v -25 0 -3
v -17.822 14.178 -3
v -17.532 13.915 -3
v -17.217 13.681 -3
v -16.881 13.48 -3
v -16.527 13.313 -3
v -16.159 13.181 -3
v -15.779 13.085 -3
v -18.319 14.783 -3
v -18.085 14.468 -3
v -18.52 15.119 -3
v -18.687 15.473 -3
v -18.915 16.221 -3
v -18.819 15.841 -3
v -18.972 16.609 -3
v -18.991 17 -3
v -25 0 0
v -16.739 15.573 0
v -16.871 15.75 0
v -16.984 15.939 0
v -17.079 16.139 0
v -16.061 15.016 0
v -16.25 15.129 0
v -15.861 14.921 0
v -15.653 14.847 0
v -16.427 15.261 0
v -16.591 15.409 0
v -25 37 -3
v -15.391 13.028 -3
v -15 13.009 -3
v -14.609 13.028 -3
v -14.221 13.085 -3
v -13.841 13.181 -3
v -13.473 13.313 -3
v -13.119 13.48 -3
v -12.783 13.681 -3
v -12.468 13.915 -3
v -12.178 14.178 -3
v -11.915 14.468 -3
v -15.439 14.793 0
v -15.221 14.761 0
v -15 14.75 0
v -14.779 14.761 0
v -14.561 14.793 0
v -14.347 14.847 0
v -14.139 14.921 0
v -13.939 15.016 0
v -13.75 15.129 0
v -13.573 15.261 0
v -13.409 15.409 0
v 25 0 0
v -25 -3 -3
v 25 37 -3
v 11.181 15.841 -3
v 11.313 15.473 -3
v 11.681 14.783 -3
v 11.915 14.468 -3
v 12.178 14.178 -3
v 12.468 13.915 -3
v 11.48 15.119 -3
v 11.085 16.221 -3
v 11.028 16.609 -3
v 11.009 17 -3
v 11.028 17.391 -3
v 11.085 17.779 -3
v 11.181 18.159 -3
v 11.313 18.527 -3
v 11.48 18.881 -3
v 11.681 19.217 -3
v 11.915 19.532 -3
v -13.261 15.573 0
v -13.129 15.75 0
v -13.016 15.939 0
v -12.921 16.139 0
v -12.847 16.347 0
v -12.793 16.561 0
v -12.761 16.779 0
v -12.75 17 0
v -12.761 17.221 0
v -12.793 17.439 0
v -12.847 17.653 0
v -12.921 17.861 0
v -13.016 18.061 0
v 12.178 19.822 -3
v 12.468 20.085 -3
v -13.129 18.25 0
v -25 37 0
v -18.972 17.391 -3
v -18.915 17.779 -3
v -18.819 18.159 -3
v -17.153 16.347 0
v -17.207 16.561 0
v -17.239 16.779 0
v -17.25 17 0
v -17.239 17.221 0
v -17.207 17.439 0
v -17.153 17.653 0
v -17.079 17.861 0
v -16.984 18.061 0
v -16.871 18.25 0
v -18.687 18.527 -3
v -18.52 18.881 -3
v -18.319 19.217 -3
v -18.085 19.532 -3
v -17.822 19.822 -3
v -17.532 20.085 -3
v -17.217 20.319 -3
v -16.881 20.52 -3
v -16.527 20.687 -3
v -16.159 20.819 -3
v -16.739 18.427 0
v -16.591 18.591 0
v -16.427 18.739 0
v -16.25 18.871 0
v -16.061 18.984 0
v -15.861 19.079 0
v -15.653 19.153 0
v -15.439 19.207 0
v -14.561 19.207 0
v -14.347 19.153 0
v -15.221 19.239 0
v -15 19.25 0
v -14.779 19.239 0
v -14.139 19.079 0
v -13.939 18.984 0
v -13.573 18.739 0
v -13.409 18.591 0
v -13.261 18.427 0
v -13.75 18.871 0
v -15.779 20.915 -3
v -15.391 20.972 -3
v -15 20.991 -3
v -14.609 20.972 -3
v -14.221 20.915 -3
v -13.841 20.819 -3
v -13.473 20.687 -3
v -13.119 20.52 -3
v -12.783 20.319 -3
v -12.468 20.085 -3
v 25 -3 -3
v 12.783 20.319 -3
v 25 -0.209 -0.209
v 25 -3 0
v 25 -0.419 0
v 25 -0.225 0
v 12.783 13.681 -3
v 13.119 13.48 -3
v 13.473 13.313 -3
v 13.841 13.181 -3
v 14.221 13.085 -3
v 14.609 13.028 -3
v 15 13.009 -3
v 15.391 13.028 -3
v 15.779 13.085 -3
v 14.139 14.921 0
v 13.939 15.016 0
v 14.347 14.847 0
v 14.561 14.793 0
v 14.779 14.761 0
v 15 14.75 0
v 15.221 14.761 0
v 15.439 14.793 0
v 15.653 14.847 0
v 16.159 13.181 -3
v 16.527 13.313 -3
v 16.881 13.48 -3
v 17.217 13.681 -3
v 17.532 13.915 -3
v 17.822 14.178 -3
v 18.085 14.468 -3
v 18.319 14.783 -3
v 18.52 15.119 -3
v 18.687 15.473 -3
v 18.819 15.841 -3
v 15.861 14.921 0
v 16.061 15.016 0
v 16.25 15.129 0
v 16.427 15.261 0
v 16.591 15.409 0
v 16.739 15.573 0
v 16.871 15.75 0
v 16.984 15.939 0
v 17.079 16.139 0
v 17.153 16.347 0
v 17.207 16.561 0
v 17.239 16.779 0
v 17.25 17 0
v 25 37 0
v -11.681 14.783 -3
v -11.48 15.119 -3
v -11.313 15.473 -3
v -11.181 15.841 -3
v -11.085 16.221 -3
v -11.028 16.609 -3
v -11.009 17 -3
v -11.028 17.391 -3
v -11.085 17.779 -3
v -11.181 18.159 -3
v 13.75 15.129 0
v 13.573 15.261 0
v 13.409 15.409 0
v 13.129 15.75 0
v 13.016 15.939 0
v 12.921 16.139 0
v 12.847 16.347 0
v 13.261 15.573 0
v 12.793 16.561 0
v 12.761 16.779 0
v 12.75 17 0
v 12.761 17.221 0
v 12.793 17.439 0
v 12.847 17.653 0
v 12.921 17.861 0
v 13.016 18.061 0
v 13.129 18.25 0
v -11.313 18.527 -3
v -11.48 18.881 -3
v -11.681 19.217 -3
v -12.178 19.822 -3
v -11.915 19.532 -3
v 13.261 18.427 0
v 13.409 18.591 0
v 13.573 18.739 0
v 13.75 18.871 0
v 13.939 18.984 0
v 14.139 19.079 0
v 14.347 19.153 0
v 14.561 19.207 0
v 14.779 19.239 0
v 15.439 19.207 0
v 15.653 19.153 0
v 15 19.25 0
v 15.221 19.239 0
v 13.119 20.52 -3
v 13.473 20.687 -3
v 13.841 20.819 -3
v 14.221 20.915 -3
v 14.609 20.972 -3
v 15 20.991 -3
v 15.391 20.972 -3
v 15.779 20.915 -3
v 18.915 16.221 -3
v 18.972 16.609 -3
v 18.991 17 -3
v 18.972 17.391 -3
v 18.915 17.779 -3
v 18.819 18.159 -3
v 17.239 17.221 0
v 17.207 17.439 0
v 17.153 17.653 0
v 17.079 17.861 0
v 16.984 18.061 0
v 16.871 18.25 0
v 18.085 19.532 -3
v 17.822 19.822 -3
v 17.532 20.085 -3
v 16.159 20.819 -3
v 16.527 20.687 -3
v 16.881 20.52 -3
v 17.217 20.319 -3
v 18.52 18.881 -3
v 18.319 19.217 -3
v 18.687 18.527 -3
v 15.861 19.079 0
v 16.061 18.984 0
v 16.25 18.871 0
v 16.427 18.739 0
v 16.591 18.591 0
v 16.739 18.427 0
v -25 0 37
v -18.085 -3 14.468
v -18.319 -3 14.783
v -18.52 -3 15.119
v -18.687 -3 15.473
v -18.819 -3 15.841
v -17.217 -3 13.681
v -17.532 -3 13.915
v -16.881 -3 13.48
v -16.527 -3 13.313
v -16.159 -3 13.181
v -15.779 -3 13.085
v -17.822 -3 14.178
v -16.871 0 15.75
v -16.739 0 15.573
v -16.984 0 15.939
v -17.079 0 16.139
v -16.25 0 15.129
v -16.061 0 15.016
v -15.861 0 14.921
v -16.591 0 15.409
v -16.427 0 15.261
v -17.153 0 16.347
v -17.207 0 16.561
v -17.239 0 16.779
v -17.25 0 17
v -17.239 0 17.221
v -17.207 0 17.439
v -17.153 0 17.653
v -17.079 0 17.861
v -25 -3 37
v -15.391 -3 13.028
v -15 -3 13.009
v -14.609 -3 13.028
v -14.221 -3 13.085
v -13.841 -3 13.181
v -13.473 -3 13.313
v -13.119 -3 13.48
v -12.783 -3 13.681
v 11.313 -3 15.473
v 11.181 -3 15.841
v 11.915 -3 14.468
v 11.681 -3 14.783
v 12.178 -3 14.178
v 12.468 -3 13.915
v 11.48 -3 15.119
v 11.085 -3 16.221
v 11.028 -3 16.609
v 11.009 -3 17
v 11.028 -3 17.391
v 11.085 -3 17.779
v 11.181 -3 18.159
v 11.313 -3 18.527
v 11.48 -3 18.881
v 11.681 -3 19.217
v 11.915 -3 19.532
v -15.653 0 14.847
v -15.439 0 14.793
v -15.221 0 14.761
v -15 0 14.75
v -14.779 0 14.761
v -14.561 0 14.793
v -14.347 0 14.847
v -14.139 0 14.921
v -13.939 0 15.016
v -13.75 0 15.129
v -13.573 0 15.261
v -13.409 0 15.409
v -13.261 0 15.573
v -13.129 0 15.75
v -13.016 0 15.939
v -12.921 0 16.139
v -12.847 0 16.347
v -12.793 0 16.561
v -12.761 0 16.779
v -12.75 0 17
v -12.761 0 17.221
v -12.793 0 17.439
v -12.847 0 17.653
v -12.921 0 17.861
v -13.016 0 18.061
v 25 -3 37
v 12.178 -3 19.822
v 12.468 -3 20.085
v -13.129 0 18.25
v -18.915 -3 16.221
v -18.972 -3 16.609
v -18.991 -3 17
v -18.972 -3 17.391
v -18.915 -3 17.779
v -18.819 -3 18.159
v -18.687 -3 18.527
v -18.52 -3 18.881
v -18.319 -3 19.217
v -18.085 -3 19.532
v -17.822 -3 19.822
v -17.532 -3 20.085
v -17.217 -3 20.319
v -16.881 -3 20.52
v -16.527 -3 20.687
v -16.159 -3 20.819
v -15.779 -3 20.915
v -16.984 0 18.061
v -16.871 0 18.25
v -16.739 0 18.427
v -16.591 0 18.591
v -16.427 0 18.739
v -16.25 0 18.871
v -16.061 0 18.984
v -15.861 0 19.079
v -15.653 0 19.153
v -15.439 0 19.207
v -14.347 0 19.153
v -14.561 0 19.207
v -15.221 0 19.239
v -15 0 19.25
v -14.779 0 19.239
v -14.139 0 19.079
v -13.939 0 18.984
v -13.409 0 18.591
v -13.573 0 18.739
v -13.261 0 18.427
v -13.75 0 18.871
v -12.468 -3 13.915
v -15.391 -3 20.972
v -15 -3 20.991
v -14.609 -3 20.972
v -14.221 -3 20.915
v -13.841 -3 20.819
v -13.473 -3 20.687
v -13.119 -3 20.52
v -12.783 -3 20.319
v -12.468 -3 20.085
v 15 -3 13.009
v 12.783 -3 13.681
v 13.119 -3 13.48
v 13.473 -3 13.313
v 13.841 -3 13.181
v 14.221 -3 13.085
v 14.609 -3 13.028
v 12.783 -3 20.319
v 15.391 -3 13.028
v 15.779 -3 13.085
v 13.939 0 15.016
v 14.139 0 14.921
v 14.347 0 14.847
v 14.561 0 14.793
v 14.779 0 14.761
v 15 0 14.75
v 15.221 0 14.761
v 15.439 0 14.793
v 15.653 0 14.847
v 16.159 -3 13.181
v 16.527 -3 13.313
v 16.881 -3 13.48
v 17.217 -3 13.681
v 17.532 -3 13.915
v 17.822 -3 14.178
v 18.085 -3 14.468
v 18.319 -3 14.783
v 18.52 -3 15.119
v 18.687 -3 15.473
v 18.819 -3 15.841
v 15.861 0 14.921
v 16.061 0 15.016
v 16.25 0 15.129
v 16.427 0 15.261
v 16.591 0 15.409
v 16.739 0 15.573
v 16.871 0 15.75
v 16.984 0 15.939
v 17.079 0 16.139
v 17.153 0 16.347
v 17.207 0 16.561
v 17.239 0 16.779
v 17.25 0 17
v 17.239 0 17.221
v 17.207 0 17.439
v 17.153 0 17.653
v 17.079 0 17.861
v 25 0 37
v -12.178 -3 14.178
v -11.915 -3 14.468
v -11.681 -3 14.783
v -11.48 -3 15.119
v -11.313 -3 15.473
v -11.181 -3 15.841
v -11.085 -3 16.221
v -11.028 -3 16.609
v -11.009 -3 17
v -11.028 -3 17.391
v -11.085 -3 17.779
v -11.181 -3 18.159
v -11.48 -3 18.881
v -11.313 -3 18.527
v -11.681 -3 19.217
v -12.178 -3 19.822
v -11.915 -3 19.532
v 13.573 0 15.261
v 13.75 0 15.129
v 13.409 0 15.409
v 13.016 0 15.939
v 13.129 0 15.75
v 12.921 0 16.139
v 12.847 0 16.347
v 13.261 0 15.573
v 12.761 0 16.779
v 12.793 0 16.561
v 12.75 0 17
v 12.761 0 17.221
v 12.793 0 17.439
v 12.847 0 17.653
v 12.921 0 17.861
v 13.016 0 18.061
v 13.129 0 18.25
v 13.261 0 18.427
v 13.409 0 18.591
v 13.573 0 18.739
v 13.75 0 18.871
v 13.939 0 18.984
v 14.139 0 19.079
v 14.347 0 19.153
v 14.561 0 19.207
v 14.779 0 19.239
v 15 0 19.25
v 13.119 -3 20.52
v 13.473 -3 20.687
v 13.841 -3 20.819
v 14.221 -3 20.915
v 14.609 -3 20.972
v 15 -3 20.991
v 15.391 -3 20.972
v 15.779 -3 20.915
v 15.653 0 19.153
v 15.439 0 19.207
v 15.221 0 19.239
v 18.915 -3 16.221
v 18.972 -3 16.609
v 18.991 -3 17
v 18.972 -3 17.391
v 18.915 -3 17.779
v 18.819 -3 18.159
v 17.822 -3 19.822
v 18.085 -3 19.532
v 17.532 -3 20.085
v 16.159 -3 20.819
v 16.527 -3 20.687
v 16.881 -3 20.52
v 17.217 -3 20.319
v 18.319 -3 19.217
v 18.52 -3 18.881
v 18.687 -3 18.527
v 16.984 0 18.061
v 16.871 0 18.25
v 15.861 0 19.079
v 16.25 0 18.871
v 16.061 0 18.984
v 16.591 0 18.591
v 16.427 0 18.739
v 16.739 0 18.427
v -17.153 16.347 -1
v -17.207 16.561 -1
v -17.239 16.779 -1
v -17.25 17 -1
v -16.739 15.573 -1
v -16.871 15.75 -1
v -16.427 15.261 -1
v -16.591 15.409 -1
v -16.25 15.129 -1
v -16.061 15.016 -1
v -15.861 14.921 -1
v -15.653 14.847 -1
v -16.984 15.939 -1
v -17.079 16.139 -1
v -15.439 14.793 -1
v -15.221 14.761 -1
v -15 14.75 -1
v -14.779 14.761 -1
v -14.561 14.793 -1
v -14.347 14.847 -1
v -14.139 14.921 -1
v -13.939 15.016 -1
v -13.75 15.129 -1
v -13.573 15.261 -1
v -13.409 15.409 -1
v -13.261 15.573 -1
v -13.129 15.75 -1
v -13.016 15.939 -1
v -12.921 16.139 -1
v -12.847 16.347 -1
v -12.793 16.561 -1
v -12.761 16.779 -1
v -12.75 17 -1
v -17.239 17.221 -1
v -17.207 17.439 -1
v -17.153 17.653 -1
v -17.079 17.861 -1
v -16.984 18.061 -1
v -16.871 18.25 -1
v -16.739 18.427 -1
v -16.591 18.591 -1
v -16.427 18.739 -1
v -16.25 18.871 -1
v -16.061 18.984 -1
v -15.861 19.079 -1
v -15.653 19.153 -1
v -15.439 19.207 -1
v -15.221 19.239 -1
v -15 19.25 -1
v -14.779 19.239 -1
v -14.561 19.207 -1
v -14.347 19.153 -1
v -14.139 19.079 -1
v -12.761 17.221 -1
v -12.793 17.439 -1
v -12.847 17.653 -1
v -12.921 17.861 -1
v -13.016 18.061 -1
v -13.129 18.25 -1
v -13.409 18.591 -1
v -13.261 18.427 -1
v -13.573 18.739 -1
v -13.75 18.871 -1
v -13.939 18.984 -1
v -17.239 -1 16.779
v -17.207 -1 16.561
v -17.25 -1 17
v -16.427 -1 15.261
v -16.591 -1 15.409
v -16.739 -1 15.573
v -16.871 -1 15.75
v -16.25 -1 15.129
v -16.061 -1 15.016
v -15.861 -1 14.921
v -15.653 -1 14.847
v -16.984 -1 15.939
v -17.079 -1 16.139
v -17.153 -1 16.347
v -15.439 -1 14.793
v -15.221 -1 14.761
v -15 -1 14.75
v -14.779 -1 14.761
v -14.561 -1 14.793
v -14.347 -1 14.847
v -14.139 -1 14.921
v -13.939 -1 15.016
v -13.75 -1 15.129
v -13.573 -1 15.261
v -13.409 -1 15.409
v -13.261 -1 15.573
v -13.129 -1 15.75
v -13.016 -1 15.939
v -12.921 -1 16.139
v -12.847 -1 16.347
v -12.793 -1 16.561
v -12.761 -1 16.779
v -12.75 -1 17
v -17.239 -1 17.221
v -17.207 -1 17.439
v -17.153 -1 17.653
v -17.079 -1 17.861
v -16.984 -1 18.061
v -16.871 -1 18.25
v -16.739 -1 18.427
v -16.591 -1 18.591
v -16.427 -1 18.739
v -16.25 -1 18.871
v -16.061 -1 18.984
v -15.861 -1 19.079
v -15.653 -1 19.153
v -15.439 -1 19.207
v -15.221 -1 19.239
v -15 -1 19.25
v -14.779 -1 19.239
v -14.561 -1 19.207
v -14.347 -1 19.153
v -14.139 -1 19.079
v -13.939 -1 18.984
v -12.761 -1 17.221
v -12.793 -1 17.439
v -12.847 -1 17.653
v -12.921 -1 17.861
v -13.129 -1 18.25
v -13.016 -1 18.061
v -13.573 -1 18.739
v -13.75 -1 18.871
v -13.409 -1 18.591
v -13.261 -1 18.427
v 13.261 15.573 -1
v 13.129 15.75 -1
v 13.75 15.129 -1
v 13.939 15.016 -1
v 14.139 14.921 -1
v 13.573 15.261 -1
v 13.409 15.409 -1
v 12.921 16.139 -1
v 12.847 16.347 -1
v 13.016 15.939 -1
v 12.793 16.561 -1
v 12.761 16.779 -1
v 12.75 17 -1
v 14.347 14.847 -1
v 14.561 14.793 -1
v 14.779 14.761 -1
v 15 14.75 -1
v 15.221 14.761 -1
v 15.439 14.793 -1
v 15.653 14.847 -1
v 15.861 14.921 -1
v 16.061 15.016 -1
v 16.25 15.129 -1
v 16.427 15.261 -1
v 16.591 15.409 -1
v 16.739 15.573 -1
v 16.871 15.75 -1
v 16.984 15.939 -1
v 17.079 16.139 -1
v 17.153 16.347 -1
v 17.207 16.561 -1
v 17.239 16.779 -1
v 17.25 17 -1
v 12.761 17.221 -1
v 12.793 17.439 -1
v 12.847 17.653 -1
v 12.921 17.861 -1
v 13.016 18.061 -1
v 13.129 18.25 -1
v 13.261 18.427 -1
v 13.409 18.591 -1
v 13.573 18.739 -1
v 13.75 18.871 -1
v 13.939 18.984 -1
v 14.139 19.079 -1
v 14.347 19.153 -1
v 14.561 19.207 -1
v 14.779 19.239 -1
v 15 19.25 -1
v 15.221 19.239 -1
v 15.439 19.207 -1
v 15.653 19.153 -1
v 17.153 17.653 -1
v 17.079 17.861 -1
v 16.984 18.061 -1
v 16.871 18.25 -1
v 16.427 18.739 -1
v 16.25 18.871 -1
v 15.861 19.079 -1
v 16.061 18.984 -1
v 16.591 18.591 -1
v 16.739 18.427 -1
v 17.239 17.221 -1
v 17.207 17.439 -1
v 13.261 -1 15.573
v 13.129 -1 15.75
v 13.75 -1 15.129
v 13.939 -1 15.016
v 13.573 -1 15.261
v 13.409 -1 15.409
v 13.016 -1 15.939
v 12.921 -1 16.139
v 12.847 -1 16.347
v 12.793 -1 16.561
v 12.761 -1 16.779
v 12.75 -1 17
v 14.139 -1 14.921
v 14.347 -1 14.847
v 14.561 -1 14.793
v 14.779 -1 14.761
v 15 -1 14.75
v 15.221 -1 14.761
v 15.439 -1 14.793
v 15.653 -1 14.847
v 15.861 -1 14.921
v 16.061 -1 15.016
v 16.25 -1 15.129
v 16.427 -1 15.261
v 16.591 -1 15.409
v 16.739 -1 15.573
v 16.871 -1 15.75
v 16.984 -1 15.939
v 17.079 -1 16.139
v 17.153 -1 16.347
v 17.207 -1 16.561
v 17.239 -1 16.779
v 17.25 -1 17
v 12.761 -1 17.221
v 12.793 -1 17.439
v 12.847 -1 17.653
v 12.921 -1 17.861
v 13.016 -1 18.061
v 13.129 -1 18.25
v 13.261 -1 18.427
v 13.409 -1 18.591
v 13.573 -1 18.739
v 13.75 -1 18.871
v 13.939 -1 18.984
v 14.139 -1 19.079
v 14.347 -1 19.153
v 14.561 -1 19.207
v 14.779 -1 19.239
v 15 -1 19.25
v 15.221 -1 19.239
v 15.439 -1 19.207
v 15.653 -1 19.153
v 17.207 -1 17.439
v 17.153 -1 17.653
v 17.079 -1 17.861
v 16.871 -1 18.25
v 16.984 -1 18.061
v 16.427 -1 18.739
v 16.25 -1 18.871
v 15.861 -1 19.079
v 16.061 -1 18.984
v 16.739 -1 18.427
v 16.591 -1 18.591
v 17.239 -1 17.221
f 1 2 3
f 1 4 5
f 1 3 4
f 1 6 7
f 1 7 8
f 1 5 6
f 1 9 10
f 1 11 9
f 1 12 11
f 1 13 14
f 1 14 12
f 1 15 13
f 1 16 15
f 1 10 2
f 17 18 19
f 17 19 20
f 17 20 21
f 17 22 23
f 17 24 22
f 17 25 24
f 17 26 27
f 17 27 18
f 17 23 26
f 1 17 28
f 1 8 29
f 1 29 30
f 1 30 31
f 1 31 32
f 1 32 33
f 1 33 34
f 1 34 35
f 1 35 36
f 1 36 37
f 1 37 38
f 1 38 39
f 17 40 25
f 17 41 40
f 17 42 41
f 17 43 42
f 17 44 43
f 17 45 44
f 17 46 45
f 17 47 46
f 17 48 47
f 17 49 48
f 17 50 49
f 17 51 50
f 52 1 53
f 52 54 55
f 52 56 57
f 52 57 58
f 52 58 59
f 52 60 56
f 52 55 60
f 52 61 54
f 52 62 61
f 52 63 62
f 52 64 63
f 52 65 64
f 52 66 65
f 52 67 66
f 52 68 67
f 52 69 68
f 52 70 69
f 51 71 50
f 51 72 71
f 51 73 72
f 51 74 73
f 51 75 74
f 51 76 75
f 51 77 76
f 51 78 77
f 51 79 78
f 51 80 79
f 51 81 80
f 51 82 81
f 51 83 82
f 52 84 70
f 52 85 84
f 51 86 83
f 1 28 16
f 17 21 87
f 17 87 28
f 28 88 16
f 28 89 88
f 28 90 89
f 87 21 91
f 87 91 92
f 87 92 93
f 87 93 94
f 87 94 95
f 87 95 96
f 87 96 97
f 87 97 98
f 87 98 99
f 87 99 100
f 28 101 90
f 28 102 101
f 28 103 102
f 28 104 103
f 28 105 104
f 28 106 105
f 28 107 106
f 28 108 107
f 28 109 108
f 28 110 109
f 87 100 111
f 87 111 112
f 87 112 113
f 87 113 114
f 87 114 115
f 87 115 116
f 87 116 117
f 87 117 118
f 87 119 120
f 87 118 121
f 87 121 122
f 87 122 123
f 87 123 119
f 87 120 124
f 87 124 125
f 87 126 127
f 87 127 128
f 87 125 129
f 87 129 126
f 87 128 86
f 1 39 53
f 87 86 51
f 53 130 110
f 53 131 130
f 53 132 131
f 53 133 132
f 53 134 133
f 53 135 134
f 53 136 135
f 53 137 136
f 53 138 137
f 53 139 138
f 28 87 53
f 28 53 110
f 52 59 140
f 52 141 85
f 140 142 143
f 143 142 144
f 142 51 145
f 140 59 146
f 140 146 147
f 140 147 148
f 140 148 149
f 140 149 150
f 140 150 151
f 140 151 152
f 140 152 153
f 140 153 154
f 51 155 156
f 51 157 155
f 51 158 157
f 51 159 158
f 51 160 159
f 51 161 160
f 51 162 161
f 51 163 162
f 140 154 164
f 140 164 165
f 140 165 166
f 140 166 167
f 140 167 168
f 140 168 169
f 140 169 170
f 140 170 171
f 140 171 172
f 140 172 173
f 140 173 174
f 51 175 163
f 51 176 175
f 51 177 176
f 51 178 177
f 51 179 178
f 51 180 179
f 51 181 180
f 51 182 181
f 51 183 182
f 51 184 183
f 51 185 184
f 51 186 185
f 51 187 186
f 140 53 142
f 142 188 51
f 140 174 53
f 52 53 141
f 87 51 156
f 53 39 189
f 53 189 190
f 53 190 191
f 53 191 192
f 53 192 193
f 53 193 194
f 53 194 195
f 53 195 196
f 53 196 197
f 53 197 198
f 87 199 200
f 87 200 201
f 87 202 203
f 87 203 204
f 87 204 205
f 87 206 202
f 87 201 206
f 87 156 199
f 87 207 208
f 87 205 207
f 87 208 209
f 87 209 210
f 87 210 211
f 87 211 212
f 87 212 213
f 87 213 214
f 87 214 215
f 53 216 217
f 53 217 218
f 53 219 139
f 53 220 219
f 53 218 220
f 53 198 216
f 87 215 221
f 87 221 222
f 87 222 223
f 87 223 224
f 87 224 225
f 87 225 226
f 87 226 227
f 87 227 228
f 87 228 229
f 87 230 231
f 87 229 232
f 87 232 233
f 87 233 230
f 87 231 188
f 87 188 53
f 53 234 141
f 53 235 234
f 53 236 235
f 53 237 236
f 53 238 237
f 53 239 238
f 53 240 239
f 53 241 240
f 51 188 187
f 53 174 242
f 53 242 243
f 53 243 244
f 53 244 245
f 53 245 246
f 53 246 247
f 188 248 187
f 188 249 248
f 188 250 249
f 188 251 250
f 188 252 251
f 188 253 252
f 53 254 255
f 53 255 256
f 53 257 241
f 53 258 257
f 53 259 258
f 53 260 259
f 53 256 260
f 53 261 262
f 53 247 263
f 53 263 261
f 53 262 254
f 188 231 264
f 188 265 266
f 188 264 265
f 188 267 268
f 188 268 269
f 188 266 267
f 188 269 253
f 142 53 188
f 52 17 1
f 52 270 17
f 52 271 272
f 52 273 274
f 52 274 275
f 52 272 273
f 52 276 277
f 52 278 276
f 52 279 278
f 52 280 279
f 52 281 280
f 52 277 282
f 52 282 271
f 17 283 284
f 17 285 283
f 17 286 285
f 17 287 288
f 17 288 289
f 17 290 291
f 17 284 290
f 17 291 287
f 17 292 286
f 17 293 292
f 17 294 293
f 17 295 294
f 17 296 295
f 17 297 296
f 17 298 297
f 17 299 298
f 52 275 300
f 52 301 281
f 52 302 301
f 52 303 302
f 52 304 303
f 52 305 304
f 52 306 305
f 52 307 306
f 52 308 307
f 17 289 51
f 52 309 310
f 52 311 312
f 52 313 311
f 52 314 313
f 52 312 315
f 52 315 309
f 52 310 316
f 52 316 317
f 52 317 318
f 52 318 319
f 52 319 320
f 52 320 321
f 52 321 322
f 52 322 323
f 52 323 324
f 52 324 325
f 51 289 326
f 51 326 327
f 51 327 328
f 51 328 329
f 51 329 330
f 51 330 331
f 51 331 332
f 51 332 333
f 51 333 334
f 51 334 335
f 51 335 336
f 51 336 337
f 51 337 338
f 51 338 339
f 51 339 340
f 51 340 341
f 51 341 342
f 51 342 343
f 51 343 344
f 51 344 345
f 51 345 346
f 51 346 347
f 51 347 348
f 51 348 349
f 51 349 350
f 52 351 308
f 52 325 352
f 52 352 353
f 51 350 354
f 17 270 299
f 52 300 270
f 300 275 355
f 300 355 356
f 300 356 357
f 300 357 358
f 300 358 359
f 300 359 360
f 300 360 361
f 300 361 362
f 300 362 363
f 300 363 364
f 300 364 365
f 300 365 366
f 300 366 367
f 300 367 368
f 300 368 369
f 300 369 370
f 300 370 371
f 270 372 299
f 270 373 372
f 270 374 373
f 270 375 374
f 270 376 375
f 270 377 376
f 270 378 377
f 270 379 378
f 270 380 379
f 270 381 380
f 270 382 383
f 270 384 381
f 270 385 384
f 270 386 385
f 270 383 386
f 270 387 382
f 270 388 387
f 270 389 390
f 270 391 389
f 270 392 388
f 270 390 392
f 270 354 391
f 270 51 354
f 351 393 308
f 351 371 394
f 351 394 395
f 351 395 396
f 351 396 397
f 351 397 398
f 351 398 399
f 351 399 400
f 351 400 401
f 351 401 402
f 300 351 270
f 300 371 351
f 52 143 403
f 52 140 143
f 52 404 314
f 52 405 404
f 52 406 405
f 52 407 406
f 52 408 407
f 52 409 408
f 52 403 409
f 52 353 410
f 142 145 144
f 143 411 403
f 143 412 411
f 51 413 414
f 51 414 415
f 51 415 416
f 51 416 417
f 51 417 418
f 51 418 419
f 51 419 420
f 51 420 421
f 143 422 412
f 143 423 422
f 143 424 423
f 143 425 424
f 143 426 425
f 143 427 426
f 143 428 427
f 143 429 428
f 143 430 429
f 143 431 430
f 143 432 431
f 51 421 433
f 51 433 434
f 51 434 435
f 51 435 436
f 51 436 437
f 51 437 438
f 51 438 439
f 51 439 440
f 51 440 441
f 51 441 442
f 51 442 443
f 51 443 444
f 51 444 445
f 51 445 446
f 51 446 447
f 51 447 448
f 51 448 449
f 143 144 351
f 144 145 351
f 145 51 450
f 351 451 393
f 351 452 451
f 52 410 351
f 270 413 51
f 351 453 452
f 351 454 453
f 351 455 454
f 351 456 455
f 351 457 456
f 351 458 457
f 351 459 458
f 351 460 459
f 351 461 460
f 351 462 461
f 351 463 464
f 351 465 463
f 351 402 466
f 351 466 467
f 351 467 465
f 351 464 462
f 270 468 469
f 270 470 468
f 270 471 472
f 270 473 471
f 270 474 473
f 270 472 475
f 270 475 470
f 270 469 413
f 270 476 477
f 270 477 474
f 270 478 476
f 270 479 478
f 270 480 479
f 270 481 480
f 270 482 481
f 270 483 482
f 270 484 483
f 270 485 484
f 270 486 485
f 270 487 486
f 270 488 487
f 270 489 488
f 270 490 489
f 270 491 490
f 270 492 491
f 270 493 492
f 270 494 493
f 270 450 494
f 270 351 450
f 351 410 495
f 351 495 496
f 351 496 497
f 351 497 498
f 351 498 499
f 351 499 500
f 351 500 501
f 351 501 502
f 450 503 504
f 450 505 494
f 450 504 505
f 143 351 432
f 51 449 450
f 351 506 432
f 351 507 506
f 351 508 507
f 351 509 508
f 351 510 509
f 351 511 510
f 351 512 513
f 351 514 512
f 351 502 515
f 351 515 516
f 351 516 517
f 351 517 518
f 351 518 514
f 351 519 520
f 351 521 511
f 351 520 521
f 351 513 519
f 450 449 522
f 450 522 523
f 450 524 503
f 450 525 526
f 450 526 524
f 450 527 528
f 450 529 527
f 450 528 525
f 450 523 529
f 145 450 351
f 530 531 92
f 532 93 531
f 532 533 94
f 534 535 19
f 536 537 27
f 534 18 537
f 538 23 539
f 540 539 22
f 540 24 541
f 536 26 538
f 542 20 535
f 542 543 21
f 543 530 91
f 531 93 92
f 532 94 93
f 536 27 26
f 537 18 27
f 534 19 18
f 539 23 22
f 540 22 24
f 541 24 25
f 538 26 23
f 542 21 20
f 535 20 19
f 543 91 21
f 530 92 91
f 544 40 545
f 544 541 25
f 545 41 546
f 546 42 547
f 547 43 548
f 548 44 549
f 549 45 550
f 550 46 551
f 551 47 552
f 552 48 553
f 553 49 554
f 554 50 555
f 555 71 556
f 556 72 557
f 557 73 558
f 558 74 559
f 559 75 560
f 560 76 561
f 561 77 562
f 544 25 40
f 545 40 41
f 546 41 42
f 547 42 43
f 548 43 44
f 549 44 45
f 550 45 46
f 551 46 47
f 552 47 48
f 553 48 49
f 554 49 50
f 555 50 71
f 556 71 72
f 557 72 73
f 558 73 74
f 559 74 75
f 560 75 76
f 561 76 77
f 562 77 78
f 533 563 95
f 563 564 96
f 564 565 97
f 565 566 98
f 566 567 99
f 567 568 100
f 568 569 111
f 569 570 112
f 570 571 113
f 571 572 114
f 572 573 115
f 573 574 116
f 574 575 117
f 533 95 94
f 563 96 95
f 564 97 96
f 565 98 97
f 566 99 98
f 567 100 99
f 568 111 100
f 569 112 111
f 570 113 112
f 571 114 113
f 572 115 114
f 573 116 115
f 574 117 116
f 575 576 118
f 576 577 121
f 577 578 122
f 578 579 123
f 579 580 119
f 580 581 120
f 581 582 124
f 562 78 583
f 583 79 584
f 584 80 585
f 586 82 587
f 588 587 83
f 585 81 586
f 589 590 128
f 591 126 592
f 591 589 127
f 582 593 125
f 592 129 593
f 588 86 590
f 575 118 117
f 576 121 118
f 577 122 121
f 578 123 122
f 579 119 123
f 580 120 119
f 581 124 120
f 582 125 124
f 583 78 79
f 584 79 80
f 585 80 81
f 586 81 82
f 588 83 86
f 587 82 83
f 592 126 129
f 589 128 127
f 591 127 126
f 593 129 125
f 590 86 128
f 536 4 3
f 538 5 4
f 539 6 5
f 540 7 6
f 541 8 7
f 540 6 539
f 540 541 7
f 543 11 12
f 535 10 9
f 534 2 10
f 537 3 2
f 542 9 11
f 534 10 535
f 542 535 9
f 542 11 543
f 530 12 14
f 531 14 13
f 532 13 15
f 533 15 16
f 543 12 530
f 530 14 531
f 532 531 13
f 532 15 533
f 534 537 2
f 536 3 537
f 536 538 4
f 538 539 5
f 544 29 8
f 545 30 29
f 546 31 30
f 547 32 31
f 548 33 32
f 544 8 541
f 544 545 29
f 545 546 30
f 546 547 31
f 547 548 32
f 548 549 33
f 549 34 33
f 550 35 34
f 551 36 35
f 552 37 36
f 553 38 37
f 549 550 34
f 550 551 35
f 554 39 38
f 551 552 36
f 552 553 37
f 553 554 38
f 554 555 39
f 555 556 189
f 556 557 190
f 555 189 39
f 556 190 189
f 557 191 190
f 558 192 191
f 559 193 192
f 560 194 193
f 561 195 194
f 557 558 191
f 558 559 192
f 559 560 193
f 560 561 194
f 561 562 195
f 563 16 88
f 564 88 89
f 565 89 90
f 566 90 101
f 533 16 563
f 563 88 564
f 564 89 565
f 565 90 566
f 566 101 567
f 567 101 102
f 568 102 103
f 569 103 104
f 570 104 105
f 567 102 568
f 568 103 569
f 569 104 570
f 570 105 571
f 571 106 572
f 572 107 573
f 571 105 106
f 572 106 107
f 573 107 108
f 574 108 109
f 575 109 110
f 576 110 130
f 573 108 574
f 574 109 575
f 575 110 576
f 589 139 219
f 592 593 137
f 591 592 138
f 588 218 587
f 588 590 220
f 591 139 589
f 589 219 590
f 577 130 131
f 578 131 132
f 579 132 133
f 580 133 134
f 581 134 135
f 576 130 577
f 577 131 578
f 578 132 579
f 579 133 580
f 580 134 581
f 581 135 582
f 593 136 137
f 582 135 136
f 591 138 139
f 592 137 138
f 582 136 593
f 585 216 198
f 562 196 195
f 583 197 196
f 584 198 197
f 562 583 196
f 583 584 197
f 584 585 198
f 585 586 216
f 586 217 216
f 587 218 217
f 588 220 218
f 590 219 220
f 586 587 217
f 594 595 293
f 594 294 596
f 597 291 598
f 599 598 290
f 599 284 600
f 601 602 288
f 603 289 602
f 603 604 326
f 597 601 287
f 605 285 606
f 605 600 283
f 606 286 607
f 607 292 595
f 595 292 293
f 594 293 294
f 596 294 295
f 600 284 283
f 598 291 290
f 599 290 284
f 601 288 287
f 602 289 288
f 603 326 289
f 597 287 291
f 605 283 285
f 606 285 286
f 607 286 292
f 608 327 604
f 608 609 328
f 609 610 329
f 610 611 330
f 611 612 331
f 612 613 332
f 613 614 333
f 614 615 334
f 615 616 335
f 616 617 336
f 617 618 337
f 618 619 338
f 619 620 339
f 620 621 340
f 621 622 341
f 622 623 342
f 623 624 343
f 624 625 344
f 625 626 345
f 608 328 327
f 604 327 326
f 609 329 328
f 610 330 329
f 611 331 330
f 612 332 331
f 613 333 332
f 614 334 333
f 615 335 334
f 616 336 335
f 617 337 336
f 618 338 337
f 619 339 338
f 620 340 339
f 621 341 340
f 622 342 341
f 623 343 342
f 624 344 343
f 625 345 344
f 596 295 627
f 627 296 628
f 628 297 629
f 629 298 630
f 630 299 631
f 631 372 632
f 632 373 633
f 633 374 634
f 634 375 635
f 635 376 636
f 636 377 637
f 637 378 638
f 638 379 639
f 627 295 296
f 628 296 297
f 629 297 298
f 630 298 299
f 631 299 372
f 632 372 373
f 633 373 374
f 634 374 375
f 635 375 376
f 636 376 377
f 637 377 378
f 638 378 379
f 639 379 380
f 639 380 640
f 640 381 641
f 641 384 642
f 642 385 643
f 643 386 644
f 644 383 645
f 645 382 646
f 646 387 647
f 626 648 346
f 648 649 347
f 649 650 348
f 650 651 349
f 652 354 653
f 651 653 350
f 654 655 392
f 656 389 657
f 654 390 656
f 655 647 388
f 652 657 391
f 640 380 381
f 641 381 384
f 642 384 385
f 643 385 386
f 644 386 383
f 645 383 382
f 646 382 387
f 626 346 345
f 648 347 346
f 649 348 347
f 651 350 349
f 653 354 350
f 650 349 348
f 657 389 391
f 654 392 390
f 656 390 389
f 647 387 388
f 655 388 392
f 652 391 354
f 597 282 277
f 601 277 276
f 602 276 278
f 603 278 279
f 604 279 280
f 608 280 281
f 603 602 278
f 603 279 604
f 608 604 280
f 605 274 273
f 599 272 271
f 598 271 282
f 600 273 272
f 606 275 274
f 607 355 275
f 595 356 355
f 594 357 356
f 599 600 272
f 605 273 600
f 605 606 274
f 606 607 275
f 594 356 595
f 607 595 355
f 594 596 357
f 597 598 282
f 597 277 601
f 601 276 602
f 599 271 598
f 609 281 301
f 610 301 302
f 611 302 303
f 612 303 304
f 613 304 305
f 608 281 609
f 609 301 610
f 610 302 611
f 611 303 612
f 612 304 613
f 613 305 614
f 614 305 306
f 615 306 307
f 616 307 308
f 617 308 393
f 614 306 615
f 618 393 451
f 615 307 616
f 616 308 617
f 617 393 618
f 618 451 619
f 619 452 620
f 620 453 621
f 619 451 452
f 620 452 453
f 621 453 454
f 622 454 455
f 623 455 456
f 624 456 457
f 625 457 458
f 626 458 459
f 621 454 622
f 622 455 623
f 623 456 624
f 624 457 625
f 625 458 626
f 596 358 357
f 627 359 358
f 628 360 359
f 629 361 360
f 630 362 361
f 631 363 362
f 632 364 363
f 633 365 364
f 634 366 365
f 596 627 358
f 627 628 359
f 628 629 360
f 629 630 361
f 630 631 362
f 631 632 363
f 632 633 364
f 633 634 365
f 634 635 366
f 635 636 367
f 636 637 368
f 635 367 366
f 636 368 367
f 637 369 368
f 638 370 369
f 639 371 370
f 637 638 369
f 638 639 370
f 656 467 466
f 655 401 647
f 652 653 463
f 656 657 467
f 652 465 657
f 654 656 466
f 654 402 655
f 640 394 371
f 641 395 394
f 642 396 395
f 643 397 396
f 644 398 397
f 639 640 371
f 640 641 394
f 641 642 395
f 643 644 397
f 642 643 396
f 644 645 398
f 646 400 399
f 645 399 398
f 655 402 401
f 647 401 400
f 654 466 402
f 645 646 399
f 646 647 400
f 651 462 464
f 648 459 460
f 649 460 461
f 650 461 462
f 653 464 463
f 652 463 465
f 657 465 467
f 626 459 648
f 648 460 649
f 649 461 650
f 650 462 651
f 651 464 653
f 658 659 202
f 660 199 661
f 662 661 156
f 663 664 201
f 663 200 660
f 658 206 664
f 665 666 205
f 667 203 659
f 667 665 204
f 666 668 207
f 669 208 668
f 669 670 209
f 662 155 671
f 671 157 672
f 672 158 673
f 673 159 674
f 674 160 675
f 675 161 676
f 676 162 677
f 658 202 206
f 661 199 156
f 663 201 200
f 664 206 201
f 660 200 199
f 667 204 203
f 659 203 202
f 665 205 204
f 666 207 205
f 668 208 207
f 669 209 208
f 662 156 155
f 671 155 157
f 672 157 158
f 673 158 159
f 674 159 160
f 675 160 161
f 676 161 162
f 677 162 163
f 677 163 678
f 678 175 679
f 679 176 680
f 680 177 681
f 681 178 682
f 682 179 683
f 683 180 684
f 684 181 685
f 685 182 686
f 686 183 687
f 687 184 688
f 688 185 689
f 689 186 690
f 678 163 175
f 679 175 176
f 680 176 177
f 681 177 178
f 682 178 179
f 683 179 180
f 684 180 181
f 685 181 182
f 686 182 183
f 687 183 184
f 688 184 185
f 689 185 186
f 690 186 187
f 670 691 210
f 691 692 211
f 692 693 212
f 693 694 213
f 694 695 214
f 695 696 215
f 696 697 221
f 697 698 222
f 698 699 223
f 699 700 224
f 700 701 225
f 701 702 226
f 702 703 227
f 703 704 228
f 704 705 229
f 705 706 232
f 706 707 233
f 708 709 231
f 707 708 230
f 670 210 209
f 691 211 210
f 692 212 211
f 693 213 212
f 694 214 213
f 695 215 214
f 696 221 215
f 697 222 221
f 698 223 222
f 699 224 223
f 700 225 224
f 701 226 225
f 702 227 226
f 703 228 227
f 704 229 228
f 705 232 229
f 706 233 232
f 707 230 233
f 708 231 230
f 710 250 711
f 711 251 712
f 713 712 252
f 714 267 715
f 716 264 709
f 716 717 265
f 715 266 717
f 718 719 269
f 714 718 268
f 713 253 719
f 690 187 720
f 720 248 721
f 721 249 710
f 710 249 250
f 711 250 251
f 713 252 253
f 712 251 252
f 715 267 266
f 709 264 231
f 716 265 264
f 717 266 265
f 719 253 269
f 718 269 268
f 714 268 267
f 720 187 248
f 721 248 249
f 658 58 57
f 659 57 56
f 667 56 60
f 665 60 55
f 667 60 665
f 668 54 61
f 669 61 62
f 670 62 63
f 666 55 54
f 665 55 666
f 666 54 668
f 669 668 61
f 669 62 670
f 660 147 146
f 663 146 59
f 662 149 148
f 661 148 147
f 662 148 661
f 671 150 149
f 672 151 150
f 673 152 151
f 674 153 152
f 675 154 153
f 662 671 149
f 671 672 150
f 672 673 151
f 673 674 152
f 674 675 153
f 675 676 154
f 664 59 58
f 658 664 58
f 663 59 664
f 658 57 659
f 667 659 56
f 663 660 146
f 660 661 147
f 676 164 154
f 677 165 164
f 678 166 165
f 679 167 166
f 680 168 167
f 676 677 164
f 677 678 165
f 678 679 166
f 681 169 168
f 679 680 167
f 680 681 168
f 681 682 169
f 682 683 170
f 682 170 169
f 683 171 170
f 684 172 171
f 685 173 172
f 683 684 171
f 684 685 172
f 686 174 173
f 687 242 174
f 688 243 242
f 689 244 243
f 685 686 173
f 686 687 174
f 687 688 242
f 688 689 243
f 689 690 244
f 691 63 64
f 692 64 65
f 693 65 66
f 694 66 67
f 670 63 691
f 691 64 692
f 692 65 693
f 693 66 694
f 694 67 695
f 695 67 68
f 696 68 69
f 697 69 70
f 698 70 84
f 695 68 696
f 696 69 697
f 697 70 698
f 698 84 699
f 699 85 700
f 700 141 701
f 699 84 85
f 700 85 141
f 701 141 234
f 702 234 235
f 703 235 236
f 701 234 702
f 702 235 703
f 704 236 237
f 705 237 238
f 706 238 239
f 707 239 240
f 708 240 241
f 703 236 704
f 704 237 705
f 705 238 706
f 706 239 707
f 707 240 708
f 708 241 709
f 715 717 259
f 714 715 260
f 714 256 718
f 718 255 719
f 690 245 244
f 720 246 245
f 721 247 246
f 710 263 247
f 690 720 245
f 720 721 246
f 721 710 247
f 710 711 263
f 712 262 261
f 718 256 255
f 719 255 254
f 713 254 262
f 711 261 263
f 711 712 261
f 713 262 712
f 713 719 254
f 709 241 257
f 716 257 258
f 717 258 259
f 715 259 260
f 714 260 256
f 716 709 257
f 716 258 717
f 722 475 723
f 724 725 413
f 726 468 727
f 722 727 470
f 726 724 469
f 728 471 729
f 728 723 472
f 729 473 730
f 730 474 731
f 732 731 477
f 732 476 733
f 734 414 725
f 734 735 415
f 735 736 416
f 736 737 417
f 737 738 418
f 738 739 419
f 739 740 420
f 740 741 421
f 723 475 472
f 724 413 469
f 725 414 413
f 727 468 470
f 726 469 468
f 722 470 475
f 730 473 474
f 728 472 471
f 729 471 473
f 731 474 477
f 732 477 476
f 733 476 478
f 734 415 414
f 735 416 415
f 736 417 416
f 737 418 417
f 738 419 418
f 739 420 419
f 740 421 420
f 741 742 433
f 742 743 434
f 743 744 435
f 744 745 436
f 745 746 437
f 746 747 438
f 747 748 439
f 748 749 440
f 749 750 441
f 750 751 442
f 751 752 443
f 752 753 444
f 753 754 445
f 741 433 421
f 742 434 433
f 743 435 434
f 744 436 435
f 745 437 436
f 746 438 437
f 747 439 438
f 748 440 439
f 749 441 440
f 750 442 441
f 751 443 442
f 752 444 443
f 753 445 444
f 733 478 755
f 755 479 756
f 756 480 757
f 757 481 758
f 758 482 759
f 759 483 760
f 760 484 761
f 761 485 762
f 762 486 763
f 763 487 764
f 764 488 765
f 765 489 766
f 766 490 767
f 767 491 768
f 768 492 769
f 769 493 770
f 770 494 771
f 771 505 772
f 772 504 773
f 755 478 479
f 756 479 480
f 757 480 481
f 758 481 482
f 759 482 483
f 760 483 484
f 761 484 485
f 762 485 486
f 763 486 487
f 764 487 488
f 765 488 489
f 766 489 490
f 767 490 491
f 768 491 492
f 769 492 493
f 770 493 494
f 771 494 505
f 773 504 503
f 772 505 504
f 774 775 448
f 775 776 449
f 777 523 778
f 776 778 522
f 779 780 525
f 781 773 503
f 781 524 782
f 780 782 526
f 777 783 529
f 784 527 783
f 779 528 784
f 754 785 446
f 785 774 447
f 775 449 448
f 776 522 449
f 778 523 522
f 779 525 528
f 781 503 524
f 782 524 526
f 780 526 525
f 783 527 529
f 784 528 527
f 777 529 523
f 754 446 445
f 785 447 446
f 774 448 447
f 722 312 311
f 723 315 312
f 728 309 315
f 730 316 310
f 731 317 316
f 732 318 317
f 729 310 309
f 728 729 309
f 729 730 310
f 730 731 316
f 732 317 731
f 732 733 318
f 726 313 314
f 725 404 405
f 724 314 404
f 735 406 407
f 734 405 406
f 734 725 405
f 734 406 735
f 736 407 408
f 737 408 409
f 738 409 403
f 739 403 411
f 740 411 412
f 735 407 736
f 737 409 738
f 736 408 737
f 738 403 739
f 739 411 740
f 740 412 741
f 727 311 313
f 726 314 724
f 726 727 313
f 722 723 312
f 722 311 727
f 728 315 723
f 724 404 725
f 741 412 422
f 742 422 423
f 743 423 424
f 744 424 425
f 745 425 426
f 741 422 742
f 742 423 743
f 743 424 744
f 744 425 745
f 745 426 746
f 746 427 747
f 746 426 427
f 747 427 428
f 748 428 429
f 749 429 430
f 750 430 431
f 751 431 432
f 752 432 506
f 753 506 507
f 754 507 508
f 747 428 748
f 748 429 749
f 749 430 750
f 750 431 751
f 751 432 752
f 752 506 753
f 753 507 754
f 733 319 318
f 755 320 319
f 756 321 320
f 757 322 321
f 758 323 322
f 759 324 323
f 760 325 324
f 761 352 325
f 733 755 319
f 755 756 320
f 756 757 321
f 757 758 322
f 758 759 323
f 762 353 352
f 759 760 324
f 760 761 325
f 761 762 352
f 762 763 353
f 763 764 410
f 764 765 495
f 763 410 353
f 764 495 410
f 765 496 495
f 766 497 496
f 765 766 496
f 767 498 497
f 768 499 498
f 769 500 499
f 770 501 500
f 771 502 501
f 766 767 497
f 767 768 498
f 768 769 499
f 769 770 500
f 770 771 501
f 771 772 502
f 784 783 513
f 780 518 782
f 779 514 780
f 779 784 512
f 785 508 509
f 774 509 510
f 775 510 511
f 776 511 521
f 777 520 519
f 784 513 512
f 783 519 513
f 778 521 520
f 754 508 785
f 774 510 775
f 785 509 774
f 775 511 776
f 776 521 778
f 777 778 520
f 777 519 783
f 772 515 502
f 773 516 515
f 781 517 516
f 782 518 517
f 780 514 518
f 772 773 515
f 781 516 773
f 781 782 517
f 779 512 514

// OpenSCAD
$fn = 64;

width = 50;
flange_length = 40;
thickness = 3;

hole_diameter = 4.5;
countersink_diameter = 8;
countersink_depth = 2;
edge_offset = 10;
eps = 0.01;

// 両フランジの内側コーナーを (Y, Z) = (0, 0) に配置
outer_edge = flange_length - thickness;
hole_position = (outer_edge - thickness) / 2;

difference() {
    union() {
        // 水平フランジ
        translate([-width/2, -thickness, -thickness])
            cube([width, flange_length, thickness]);

        // 垂直フランジ
        translate([-width/2, -thickness, -thickness])
            cube([width, thickness, flange_length]);
    }

    for (x = [-width/2 + edge_offset, width/2 - edge_offset]) {
        // 水平面：外側（下面）から皿穴を加工
        translate([x, hole_position, -thickness - eps])
            cylinder(d = hole_diameter, h = thickness + 2*eps);
        translate([x, hole_position, -thickness - eps])
            cylinder(
                d1 = countersink_diameter,
                d2 = hole_diameter,
                h = countersink_depth + eps
            );

        // 垂直面：外側（背面）から皿穴を加工
        translate([x, -thickness - eps, hole_position])
            rotate([-90, 0, 0])
                cylinder(d = hole_diameter, h = thickness + 2*eps);
        translate([x, -thickness - eps, hole_position])
            rotate([-90, 0, 0])
                cylinder(
                    d1 = countersink_diameter,
                    d2 = hole_diameter,
                    h = countersink_depth + eps
                );
    }
}
